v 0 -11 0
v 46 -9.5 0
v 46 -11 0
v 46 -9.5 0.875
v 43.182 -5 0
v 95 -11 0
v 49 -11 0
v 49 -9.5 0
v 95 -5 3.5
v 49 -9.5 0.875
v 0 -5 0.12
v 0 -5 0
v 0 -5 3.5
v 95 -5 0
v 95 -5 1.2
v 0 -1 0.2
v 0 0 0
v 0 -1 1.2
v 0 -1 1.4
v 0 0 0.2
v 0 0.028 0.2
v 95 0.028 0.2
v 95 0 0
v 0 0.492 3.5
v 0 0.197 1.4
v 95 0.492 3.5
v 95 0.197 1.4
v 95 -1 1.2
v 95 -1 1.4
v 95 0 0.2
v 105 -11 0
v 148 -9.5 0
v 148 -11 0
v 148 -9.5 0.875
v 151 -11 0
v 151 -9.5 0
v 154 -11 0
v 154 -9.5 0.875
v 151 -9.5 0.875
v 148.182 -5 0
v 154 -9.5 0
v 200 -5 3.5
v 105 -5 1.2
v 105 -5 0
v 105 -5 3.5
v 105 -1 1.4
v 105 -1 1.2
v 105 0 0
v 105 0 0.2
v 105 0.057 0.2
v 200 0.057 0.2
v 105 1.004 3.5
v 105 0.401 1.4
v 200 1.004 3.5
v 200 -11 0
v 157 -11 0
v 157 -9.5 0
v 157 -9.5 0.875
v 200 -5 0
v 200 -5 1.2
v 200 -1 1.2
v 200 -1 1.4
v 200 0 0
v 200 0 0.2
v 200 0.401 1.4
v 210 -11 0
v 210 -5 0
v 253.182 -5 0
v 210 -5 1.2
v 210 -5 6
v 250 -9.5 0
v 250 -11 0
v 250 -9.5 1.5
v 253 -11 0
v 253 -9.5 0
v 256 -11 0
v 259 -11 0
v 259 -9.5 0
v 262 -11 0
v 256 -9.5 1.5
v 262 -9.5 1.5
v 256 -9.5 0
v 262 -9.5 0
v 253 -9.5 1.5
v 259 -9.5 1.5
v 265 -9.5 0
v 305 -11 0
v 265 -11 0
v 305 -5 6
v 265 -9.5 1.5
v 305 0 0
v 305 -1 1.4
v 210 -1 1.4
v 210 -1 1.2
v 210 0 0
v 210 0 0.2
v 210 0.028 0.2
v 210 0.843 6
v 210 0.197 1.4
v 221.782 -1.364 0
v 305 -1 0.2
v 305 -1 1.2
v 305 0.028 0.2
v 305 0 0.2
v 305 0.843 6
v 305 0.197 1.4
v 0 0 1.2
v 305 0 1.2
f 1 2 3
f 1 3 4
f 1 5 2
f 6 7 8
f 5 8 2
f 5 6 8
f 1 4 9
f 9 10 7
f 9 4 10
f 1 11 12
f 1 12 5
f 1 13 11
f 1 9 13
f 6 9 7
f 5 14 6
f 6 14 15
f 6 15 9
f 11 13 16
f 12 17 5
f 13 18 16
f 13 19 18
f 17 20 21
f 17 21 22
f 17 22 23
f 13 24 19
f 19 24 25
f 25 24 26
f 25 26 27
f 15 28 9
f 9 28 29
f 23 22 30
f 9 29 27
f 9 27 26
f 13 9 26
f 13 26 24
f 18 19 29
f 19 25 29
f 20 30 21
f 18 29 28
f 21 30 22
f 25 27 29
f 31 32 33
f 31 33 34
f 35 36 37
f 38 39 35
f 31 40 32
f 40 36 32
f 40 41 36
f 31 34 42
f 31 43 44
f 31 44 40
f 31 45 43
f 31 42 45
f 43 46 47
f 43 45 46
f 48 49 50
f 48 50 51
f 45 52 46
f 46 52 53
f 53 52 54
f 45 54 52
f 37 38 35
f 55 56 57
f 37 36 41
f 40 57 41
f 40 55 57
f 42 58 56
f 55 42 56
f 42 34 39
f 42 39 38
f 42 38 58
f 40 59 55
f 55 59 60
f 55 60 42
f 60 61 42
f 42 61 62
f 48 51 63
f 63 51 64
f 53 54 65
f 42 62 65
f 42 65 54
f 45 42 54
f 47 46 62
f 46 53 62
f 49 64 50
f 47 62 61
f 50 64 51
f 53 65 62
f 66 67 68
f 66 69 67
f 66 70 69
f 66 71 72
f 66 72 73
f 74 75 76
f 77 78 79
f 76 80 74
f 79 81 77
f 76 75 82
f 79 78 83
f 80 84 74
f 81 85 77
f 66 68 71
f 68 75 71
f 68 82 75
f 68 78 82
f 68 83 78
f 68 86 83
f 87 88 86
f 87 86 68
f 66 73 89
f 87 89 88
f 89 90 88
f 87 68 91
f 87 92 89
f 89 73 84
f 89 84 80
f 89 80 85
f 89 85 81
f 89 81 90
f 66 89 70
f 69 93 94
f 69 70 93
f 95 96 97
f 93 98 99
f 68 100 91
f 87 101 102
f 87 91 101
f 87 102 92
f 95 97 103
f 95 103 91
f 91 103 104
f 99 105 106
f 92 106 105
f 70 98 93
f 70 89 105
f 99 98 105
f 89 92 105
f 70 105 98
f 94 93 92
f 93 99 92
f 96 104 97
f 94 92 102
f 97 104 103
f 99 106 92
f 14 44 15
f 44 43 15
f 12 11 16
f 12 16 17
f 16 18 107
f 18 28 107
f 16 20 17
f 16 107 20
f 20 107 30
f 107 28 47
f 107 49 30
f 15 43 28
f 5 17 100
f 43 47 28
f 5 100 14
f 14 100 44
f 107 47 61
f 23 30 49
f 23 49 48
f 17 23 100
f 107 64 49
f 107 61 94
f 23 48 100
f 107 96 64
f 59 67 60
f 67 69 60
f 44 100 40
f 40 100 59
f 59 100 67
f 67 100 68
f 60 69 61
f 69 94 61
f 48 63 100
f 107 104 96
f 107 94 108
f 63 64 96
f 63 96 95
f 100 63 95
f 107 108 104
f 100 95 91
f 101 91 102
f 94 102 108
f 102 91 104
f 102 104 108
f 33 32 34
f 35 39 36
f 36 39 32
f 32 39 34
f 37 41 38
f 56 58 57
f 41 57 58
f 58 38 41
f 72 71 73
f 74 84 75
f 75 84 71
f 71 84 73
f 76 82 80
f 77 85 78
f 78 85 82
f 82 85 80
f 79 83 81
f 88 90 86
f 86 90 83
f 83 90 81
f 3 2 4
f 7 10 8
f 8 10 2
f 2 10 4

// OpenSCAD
// Flip coupon: three short lips on one plate, to test BY HAND which lip catches a sleeved card's edge and lets it topple
// (README, "Flipping a card" > "Bench test you can do TODAY"). Print it BEFORE the full flip_fence: the fence is blocked by the
// pre-print gate (it needs a hinged head that does not exist); this needs nothing but a hand-held magnet. Units: mm.
//
// Plan view (bed Y up the page, the lips run along X; all three share one landing zone on the -Y side):
//     card waits here (+Y)
//     [ 1 ]   [ 2 ]   [ 3 ]        <- lips; notches on the rear strip say which (1, 2 or 3 notches)
//     ==========================   <- one rear strip joins them into a single piece
//     landing zone (-Y): free bed, no rails (the full fence's rails are not what is being tested)
// Variants (undercut = degrees the catching face leans over the card; h = lip height):
//     1  8 deg, 3.5 mm   the baseline in flip_fence.scad
//     2  16 deg, 3.5 mm  a steeper undercut: does a harder lean stop the edge slipping?
//     3  8 deg, 6.0 mm   a taller lip: does it catch better, and how much more lift does the washer need?
// Every lip has a 1 mm deep groove at the foot of the face for a 1 mm self-adhesive silicone strip, flush with the face. Test each with the strip and without.

lip_l    = 95;        // each lip's length along X: longer than the card's long edge (92.5) so a card never rests on the next lip (Opus review 2026-10-11)
gap      = 10;        // between lips
base_d   = 5;         // lip thickness behind the catching face
ramp_d   = 6;         // rear slope
strip_h  = 1.2;       // the strip joining the lips, UNDER the lip bodies (y -base_d..0), so it leaves no ledge on the rear slope
groove_h = 1.2;       // at the FOOT of the face (z 0.2..1.4): that is where a flat card's edge touches it (the card is ~1.6 mm thick)
variants = [[8, 3.5], [16, 3.5], [8, 6.0]];     // [undercut deg, height mm]

rear  = base_d + ramp_d;
total = len(variants) * lip_l + (len(variants) - 1) * gap;

module lip(u, h) {                                 // profile in (y, z); y = 0 is the catching face at the bed
    uc = h * tan(u);
    difference() {
        rotate([90, 0, 90]) linear_extrude(height = lip_l)
            polygon([[-rear, 0], [0, 0], [uc, h], [-base_d, h]]);
        translate([-1, -1, 0.2]) cube([lip_l + 2, 2, groove_h]);   // 1 mm deep into the face: a 1 mm strip sits flush
    }
}

// Origin: x = 0 is the left end of lip 1, y = 0 the catching face, z = 0 the bed.
difference() {
    union() {
        for (i = [0 : len(variants) - 1])
            translate([i * (lip_l + gap), 0, 0]) lip(variants[i][0], variants[i][1]);
        translate([0, -base_d, 0]) cube([total, base_d, strip_h]);        // joins the lips; inside their bodies
    }
    // identification: 1, 2, 3 notches cut into the strip's rear edge, under each lip
    for (i = [0 : len(variants) - 1]) for (n = [0 : i])
        translate([i * (lip_l + gap) + lip_l / 2 + (n - i / 2) * 6 - 1.5, -rear - 1, -1]) cube([3, 2.5, 5]);
}
